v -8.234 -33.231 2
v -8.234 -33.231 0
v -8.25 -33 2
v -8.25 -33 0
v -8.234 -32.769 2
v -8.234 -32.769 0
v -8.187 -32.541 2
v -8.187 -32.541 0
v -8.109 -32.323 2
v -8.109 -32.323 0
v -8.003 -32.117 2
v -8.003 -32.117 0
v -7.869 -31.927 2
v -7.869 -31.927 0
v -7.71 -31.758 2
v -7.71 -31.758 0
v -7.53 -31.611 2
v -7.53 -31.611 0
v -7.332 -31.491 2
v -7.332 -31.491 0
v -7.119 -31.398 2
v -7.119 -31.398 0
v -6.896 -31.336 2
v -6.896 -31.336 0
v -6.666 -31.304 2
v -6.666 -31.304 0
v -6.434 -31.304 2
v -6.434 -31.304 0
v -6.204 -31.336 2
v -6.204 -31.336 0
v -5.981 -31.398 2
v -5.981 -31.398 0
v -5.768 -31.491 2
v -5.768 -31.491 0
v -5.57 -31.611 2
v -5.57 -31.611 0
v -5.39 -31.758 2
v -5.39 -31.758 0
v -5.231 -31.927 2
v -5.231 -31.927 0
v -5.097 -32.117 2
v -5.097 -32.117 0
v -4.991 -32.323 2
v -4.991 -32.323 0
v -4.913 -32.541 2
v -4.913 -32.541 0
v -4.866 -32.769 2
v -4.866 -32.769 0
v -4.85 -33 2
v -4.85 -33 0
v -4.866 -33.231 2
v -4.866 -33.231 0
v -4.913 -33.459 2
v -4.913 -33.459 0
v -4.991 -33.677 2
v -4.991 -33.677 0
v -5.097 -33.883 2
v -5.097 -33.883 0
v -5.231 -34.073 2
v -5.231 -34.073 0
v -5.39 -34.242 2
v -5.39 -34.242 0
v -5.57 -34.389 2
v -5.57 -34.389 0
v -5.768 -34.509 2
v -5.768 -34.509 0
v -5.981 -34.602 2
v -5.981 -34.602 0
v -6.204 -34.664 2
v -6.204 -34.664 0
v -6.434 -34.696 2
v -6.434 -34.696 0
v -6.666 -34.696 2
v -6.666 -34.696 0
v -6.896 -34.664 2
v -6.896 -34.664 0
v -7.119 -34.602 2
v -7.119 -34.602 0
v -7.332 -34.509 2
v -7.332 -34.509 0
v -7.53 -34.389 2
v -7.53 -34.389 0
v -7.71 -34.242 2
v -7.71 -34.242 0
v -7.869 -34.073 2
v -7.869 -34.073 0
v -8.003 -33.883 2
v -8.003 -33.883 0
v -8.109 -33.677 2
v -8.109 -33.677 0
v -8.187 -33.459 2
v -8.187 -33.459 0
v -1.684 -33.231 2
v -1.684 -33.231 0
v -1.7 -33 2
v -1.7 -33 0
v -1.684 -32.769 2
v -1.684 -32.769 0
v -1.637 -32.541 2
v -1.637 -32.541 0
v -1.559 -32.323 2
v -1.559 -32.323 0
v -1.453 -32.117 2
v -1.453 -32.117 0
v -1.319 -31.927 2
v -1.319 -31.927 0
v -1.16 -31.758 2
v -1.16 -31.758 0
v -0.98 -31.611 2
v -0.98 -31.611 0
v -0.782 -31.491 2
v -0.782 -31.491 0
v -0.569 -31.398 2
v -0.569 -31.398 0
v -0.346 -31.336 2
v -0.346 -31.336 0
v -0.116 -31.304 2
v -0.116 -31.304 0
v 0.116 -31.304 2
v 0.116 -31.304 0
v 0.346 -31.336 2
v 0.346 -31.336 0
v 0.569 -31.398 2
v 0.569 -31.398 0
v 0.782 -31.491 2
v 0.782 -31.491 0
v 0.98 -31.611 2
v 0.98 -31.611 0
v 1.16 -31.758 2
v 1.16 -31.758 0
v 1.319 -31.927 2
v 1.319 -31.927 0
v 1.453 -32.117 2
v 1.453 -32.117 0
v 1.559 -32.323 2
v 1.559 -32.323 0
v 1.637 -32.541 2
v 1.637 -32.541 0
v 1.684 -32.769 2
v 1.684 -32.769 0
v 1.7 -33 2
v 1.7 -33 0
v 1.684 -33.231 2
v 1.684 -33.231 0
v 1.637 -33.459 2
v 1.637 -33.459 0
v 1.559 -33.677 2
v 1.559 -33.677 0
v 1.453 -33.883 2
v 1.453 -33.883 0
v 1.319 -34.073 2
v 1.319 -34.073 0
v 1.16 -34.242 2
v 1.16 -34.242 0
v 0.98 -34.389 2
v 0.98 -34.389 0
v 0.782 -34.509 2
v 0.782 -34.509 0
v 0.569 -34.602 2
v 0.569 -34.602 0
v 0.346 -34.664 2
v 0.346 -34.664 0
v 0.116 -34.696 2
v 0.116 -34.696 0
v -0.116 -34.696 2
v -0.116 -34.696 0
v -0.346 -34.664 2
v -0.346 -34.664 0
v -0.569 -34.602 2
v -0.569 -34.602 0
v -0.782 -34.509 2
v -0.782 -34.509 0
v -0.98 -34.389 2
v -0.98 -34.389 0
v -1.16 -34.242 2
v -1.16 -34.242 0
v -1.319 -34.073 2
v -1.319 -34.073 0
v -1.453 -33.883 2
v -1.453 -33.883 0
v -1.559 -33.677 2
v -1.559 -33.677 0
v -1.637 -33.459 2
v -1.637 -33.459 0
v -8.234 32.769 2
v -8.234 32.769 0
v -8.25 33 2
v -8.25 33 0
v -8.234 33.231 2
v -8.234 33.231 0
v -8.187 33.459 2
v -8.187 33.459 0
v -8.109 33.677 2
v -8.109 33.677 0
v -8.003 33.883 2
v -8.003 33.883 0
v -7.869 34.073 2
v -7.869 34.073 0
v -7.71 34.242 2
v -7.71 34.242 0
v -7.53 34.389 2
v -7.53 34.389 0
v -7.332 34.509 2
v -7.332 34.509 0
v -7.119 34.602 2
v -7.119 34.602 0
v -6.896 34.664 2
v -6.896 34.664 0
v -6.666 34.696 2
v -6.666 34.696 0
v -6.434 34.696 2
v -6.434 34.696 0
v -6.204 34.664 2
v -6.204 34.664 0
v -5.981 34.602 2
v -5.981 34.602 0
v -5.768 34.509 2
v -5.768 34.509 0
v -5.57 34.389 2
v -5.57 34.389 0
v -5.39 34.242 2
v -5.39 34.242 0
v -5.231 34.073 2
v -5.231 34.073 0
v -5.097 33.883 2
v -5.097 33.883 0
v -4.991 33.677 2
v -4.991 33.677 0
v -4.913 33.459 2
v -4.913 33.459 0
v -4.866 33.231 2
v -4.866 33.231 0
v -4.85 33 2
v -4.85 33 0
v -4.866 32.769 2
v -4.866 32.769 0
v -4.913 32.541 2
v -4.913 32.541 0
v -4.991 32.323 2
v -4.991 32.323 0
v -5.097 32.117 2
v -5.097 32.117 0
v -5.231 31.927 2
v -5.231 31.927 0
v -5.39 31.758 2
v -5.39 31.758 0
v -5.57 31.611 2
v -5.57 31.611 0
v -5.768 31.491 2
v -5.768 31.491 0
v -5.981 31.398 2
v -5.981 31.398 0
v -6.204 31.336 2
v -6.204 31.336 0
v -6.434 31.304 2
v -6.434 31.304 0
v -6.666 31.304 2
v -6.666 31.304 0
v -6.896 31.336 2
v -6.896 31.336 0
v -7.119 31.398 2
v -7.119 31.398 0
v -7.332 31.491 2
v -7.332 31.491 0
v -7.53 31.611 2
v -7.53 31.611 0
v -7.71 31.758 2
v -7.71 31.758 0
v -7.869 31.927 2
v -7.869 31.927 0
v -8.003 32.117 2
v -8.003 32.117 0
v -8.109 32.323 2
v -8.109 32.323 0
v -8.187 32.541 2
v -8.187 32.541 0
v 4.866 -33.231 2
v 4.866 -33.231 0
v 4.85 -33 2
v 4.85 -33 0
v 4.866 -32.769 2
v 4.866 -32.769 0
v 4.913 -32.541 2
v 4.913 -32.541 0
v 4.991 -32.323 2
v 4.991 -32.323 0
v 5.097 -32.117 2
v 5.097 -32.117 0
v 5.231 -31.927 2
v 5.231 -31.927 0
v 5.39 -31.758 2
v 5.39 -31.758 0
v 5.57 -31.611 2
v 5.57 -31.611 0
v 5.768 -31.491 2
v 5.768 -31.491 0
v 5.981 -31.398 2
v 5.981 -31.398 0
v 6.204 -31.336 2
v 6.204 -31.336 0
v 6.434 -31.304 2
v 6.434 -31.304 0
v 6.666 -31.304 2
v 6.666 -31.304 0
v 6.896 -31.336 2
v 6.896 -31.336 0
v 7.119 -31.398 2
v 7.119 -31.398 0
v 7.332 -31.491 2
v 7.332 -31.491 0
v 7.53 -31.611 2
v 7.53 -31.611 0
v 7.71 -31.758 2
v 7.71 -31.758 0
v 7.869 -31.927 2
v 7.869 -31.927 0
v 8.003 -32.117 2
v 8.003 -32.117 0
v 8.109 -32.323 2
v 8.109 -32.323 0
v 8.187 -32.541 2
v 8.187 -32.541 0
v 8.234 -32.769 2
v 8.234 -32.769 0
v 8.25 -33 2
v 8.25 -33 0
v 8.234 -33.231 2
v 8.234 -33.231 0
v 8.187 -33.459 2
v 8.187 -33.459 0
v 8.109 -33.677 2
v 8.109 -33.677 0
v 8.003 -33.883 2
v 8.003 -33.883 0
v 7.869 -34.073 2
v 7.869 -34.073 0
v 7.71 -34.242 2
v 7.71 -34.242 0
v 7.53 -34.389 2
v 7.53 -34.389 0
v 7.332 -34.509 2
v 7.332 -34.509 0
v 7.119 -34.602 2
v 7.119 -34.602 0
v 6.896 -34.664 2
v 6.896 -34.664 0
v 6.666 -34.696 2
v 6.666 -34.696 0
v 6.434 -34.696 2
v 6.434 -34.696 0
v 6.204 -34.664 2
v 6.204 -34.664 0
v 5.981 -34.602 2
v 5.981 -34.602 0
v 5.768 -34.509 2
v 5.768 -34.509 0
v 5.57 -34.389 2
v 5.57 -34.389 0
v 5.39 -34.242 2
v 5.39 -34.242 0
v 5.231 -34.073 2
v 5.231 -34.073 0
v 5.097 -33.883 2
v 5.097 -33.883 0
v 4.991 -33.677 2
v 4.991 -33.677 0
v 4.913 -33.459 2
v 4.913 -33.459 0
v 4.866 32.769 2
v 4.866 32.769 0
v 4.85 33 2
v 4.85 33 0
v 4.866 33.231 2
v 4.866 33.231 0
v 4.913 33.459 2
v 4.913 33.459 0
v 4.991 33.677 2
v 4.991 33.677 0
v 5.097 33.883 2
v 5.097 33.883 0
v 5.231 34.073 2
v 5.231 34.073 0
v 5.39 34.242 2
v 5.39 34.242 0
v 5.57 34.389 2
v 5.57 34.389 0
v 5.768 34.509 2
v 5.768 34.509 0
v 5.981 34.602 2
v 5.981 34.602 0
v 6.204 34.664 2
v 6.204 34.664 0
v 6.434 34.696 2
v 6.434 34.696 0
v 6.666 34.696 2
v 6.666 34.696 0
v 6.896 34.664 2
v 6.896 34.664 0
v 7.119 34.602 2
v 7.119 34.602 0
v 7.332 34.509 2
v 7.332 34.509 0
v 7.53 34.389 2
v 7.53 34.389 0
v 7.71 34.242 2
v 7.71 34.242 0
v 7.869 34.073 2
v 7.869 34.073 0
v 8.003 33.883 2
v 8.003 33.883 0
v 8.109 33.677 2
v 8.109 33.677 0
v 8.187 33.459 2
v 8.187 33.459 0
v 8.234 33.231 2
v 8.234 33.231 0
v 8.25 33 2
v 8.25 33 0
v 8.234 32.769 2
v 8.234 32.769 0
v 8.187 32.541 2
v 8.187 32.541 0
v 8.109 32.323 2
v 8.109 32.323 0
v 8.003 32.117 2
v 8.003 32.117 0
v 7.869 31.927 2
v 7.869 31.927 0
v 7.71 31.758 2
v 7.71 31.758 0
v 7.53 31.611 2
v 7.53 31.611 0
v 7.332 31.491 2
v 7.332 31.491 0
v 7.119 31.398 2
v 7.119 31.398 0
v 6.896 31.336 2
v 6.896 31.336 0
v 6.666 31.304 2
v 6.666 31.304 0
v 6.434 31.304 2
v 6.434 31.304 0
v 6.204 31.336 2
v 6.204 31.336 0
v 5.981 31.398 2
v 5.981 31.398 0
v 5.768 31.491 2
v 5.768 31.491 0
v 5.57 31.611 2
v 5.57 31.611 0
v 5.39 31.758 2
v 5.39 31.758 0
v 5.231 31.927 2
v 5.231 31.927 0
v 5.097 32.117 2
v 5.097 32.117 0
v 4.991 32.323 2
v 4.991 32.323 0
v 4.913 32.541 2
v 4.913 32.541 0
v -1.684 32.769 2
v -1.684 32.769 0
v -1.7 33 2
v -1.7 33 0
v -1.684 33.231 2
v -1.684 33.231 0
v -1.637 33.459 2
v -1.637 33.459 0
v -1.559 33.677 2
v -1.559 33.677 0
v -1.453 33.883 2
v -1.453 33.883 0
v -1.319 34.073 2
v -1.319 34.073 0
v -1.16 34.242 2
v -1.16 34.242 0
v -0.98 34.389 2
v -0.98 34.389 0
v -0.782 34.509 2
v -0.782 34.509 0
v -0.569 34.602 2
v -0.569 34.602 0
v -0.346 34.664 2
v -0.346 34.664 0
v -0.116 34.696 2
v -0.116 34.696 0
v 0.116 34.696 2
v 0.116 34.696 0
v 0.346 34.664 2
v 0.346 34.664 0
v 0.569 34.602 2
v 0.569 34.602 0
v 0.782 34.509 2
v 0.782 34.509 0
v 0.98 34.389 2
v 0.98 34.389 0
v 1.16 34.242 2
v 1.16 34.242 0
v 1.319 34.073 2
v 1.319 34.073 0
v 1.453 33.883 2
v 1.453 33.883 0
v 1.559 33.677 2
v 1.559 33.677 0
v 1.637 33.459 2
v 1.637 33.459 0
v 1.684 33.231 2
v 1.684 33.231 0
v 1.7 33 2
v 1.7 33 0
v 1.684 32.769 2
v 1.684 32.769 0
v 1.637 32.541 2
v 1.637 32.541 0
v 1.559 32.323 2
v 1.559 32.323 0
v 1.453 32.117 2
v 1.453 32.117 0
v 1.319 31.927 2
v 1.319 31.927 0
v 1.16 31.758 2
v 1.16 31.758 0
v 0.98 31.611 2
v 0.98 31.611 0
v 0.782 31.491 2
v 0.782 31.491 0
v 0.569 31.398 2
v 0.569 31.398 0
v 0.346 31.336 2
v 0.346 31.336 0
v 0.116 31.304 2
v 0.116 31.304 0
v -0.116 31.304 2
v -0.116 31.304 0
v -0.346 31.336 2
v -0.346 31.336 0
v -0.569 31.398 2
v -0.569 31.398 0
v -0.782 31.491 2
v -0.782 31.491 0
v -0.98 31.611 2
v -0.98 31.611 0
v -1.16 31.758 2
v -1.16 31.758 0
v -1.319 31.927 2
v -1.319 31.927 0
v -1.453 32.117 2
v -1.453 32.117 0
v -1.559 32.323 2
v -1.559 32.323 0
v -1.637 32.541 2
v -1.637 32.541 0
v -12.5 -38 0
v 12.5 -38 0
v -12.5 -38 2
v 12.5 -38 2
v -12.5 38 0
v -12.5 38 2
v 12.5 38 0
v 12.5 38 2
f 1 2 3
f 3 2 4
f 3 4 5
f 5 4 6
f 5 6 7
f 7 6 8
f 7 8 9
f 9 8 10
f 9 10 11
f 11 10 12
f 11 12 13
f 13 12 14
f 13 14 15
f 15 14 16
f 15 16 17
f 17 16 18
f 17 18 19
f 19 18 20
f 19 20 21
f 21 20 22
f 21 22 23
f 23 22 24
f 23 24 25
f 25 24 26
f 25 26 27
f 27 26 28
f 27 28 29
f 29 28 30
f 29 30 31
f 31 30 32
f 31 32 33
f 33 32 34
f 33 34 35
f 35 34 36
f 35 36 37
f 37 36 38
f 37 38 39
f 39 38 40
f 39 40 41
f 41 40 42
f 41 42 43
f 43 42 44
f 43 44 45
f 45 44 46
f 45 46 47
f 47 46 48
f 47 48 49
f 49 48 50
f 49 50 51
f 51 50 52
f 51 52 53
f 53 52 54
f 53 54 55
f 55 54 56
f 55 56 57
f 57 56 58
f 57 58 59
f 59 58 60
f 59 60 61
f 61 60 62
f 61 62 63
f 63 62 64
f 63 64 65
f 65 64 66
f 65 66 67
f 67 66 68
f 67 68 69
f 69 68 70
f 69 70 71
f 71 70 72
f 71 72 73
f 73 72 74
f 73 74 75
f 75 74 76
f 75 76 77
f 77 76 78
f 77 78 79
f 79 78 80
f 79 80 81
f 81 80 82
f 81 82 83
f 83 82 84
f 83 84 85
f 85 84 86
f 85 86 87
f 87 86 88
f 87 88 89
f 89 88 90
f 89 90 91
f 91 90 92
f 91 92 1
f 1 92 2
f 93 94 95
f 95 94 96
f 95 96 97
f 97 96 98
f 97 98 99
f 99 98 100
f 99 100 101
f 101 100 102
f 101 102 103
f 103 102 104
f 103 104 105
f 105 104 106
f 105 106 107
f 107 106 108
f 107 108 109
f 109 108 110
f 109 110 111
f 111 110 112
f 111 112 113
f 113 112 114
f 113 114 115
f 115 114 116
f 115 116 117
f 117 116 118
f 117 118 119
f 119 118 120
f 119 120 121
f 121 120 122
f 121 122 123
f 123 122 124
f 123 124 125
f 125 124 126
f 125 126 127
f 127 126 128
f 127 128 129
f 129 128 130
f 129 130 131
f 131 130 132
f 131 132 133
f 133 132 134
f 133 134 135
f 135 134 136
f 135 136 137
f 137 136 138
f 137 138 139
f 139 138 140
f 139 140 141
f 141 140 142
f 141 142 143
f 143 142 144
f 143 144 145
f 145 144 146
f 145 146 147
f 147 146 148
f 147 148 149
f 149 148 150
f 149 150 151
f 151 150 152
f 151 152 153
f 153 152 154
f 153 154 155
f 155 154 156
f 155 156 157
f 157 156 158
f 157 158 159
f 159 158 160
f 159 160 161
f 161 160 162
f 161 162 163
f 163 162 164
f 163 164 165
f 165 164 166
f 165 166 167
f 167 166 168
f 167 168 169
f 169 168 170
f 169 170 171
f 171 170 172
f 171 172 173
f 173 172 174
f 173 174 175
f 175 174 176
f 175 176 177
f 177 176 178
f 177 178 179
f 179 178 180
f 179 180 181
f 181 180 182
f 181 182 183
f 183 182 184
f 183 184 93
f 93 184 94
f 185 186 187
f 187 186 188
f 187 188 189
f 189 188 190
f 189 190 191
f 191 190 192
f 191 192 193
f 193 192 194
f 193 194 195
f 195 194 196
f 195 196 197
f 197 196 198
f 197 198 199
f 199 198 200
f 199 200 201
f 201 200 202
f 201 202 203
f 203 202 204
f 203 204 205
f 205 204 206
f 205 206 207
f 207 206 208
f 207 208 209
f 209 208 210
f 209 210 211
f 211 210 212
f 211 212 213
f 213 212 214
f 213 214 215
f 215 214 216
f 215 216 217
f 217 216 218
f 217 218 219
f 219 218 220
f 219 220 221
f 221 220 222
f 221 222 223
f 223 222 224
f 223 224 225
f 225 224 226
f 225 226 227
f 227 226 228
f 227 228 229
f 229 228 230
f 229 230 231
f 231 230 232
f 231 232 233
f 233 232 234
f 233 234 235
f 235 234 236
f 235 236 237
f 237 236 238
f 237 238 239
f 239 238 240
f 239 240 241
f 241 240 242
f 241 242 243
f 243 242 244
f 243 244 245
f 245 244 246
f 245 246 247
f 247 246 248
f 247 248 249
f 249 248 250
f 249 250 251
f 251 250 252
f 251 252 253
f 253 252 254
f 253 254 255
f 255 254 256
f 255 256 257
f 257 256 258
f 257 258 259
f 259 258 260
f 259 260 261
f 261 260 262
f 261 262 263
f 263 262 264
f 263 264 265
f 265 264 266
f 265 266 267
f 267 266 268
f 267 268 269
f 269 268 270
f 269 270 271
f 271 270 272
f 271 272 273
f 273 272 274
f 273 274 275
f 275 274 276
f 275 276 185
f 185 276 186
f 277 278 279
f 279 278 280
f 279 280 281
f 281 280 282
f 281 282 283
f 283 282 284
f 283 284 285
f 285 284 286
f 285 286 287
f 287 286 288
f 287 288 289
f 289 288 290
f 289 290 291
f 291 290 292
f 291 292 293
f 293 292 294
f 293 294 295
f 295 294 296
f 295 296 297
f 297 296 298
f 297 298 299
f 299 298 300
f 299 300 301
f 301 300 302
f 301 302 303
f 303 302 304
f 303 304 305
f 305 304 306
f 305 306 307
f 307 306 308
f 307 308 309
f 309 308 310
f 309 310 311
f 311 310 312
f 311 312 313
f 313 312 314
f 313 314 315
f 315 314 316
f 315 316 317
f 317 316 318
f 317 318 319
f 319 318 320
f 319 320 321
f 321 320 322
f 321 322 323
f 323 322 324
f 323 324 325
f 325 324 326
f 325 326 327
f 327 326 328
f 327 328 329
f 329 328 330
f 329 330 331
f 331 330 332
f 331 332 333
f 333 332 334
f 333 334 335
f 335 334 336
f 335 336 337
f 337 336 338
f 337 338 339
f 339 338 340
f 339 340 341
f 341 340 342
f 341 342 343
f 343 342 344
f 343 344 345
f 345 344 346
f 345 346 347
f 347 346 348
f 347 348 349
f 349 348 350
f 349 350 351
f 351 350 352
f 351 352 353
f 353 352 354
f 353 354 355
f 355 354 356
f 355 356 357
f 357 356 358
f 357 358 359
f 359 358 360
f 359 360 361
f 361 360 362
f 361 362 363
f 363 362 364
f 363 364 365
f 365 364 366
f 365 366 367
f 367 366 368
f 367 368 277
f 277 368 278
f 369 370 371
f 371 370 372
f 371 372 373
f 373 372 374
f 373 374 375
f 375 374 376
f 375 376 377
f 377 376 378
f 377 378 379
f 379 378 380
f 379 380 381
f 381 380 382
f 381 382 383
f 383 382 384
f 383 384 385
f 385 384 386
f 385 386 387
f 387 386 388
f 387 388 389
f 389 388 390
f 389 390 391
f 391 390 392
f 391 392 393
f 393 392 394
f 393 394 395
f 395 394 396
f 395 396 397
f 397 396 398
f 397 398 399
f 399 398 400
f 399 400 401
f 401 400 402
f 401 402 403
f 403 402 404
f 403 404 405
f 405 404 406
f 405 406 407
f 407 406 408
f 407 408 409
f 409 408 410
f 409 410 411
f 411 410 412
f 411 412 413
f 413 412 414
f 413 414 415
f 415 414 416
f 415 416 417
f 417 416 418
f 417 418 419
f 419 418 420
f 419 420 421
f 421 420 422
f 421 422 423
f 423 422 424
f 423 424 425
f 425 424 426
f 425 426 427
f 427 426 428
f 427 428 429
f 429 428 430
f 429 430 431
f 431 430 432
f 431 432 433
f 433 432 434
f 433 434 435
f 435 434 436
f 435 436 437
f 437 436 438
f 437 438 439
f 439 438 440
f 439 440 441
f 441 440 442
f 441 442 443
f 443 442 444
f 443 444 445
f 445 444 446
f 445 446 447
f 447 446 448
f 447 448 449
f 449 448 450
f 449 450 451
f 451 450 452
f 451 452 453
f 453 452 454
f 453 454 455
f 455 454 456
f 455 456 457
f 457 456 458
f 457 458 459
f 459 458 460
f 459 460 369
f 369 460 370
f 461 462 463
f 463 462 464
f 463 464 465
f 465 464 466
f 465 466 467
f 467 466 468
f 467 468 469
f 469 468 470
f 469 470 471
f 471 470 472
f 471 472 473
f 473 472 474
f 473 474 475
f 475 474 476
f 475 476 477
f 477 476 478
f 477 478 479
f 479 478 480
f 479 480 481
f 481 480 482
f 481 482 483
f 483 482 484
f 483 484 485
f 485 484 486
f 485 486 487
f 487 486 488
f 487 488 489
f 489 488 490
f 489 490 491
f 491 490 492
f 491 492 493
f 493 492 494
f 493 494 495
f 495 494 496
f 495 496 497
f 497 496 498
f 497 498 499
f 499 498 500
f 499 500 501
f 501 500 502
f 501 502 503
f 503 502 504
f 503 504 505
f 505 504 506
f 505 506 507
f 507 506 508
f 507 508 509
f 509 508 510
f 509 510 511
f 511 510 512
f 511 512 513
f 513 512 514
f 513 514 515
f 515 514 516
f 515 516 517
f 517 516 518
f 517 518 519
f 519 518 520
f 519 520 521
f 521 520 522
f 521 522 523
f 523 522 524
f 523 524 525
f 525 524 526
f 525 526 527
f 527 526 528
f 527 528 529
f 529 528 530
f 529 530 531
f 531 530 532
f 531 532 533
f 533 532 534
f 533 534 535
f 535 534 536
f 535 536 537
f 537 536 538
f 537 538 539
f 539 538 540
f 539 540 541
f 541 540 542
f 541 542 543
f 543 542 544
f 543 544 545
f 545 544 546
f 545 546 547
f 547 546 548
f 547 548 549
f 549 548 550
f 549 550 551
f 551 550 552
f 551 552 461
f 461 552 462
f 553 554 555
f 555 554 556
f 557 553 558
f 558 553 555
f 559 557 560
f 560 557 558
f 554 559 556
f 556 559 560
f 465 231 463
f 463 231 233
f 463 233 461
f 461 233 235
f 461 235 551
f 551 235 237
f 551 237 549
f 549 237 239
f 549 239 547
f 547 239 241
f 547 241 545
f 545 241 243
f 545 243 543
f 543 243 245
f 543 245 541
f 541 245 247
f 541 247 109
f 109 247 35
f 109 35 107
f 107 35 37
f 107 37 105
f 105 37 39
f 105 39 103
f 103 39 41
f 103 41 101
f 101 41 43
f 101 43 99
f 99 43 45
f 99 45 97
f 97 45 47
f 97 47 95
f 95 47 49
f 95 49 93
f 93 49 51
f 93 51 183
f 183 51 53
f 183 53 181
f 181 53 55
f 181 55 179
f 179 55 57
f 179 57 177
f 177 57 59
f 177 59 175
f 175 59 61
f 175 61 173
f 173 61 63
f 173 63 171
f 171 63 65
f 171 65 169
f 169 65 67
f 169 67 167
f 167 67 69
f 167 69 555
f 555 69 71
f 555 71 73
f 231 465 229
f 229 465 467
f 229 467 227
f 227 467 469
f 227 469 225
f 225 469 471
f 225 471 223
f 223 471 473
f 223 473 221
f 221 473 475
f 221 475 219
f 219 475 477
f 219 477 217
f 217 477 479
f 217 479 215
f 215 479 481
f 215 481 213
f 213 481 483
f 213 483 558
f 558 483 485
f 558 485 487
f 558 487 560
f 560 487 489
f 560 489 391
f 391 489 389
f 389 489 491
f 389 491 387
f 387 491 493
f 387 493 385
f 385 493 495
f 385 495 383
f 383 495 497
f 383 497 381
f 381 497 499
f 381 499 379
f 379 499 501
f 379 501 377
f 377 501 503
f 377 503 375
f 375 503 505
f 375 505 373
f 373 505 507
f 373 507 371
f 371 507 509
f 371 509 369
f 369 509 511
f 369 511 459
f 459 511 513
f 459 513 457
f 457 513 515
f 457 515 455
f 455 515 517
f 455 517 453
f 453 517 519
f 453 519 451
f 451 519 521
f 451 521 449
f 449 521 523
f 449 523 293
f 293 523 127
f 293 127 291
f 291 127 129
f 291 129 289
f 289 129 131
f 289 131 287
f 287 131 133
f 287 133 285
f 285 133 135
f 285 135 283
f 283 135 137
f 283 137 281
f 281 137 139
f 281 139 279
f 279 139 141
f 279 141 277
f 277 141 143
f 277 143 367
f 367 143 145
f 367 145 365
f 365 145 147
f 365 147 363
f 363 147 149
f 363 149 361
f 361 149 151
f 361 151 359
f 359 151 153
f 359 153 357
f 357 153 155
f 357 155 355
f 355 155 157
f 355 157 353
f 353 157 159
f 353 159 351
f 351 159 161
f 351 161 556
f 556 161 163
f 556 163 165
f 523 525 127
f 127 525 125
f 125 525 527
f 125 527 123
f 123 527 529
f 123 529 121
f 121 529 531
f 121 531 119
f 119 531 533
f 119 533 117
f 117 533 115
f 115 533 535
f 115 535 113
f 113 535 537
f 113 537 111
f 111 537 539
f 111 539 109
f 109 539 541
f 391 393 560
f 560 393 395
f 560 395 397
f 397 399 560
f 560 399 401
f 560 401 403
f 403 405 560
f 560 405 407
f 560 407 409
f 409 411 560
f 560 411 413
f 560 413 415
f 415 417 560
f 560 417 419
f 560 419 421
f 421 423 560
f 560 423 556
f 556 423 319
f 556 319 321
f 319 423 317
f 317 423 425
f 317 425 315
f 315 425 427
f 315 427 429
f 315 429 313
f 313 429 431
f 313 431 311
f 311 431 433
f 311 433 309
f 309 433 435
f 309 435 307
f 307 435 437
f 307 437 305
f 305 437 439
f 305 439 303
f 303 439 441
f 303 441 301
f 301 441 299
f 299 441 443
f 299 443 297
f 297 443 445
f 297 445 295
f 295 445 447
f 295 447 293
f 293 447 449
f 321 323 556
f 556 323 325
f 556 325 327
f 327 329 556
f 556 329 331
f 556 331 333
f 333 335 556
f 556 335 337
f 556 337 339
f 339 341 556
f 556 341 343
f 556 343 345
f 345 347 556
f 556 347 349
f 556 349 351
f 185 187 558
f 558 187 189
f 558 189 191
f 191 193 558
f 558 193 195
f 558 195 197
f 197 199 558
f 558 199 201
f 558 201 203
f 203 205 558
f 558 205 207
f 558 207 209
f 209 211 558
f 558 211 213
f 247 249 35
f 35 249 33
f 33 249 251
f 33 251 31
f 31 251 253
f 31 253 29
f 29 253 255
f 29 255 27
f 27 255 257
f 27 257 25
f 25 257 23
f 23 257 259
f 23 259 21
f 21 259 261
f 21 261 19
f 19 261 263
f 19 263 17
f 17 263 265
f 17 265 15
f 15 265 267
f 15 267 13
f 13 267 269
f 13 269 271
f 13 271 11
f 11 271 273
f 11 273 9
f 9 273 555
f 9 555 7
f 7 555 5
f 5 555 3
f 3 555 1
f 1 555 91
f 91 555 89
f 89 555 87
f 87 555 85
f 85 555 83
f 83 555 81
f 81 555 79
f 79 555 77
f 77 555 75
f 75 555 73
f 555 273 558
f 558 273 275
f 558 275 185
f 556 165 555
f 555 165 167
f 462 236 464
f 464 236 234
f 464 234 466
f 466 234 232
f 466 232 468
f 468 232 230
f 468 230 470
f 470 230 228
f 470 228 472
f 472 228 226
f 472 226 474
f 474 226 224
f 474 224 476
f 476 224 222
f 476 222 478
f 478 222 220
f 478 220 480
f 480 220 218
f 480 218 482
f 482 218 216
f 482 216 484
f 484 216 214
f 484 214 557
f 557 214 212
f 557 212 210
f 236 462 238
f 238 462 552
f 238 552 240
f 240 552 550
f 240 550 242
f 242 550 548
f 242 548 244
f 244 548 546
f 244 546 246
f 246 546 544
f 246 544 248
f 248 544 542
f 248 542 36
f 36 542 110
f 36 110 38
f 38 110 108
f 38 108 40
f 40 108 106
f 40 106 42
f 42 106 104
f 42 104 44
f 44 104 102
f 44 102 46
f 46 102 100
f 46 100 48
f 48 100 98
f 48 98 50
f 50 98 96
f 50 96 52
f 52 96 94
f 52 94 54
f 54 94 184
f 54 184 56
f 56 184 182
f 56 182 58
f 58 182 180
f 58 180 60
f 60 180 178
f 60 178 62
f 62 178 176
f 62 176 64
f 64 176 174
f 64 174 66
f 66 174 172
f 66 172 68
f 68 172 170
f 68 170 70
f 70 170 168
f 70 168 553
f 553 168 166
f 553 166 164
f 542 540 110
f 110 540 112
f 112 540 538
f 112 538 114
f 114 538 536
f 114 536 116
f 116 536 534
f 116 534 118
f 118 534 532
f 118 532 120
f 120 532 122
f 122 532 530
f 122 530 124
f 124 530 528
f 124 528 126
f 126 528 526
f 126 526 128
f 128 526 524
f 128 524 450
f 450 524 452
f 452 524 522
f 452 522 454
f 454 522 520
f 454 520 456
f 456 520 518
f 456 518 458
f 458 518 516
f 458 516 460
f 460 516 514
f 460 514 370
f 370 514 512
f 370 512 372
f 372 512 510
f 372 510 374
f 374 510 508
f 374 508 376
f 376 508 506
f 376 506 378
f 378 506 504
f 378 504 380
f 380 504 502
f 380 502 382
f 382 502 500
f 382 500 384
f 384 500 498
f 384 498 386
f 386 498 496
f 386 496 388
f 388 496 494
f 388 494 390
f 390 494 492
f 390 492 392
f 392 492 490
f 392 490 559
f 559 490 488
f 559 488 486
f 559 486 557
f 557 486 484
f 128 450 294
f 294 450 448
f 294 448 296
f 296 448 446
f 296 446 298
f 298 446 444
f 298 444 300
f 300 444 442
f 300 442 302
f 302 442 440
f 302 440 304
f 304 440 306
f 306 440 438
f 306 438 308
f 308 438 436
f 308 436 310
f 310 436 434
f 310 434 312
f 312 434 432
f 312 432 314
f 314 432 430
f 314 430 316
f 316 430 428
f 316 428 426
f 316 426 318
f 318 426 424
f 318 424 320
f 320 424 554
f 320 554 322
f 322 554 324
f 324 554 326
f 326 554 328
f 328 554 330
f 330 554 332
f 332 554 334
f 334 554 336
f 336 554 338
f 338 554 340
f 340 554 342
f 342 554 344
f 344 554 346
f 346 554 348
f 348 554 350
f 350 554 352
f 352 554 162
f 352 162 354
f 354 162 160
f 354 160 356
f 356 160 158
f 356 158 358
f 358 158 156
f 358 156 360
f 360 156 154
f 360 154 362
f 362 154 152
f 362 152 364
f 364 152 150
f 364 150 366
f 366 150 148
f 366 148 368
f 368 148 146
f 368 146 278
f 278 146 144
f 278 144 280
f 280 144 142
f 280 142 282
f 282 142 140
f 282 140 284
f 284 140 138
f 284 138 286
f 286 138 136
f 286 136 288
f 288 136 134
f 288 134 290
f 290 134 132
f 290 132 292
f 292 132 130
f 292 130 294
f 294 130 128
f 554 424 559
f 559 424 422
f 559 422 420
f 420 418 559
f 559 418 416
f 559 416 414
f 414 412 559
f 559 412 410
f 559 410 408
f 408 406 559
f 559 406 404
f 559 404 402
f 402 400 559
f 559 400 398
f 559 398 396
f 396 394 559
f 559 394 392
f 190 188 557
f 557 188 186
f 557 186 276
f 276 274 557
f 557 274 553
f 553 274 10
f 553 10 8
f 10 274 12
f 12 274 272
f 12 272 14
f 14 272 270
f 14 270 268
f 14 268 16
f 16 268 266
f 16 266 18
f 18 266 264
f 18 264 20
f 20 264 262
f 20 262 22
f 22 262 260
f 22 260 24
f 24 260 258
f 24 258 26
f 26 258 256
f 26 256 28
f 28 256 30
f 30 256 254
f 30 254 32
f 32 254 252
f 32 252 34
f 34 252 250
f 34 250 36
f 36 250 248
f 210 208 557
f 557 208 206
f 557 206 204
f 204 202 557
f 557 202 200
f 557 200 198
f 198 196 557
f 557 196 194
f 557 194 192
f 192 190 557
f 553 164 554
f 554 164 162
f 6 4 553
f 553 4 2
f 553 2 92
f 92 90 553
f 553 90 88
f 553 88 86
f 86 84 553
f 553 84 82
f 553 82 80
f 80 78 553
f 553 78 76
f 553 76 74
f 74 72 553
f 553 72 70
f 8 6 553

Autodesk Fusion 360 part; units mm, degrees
sketch "Sketch1" plane through (0, 0, 0) normal (0, 0, 1) x (1, 0, 0)
  line L0 (27, 38) -> (-27, 38)
  line L1 (-27, 38) -> (-27, -38)
  line L2 (-27, -38) -> (27, -38)
  line L3 (27, -38) -> (27, 38)
  line L4 (27, 38) -> (-27, -38) construction
  line L5 (-27, 38) -> (27, -38) construction
  line L6 (-27, 30) -> (27, 30)
  line L7 (0, 0) -> (5, 0)
  line L8 (0, 0) -> (0, 6)
  line L9 (-27, -30) -> (27, -30)
  line L10 (-12.5, 30) -> (-12.5, -30)
  line L11 (12.5, 30) -> (12.5, -30)
  line L12 (-12.5, 30) -> (-12.5, 38)
  line L13 (12.5, 30) -> (12.5, 38)
  circle A0 centre (0, 33) radius 1.7
  circle A1 centre (0, -33) radius 1.7
  line L14 (-12.5, -30) -> (-12.5, -38)
  line L15 (12.5, -30) -> (12.5, -38)
  circle A2 centre (-20.55, 33) radius 1.7
  circle A3 centre (-6.55, 33) radius 1.7
  circle A4 centre (20.55, 33) radius 1.7
  circle A5 centre (6.55, 33) radius 1.7
  circle A6 centre (-20.55, -33) radius 1.7
  circle A7 centre (-6.55, -33) radius 1.7
  circle A8 centre (6.55, -33) radius 1.7
  circle A9 centre (20.55, -33) radius 1.7
  dimension "d1" = 8
  dimension "d2" = 25
  dimension "d3" = 25
  dimension "d5" = 5
  dimension "d6" = 3.4
  dimension "d9" = 14
  dimension "d10" = 20.55
  dimension "d13" = 60
  dimension "d14" = 54
extrude "Extrude1" add sketch "Sketch1" along normal blind 2 contours L0 L6 L12 L13 | L6 L9 L10 L11 | L2 L9 L14 L15
equation "d10 = ( 41.1 / 2 ) * 1 mm"
